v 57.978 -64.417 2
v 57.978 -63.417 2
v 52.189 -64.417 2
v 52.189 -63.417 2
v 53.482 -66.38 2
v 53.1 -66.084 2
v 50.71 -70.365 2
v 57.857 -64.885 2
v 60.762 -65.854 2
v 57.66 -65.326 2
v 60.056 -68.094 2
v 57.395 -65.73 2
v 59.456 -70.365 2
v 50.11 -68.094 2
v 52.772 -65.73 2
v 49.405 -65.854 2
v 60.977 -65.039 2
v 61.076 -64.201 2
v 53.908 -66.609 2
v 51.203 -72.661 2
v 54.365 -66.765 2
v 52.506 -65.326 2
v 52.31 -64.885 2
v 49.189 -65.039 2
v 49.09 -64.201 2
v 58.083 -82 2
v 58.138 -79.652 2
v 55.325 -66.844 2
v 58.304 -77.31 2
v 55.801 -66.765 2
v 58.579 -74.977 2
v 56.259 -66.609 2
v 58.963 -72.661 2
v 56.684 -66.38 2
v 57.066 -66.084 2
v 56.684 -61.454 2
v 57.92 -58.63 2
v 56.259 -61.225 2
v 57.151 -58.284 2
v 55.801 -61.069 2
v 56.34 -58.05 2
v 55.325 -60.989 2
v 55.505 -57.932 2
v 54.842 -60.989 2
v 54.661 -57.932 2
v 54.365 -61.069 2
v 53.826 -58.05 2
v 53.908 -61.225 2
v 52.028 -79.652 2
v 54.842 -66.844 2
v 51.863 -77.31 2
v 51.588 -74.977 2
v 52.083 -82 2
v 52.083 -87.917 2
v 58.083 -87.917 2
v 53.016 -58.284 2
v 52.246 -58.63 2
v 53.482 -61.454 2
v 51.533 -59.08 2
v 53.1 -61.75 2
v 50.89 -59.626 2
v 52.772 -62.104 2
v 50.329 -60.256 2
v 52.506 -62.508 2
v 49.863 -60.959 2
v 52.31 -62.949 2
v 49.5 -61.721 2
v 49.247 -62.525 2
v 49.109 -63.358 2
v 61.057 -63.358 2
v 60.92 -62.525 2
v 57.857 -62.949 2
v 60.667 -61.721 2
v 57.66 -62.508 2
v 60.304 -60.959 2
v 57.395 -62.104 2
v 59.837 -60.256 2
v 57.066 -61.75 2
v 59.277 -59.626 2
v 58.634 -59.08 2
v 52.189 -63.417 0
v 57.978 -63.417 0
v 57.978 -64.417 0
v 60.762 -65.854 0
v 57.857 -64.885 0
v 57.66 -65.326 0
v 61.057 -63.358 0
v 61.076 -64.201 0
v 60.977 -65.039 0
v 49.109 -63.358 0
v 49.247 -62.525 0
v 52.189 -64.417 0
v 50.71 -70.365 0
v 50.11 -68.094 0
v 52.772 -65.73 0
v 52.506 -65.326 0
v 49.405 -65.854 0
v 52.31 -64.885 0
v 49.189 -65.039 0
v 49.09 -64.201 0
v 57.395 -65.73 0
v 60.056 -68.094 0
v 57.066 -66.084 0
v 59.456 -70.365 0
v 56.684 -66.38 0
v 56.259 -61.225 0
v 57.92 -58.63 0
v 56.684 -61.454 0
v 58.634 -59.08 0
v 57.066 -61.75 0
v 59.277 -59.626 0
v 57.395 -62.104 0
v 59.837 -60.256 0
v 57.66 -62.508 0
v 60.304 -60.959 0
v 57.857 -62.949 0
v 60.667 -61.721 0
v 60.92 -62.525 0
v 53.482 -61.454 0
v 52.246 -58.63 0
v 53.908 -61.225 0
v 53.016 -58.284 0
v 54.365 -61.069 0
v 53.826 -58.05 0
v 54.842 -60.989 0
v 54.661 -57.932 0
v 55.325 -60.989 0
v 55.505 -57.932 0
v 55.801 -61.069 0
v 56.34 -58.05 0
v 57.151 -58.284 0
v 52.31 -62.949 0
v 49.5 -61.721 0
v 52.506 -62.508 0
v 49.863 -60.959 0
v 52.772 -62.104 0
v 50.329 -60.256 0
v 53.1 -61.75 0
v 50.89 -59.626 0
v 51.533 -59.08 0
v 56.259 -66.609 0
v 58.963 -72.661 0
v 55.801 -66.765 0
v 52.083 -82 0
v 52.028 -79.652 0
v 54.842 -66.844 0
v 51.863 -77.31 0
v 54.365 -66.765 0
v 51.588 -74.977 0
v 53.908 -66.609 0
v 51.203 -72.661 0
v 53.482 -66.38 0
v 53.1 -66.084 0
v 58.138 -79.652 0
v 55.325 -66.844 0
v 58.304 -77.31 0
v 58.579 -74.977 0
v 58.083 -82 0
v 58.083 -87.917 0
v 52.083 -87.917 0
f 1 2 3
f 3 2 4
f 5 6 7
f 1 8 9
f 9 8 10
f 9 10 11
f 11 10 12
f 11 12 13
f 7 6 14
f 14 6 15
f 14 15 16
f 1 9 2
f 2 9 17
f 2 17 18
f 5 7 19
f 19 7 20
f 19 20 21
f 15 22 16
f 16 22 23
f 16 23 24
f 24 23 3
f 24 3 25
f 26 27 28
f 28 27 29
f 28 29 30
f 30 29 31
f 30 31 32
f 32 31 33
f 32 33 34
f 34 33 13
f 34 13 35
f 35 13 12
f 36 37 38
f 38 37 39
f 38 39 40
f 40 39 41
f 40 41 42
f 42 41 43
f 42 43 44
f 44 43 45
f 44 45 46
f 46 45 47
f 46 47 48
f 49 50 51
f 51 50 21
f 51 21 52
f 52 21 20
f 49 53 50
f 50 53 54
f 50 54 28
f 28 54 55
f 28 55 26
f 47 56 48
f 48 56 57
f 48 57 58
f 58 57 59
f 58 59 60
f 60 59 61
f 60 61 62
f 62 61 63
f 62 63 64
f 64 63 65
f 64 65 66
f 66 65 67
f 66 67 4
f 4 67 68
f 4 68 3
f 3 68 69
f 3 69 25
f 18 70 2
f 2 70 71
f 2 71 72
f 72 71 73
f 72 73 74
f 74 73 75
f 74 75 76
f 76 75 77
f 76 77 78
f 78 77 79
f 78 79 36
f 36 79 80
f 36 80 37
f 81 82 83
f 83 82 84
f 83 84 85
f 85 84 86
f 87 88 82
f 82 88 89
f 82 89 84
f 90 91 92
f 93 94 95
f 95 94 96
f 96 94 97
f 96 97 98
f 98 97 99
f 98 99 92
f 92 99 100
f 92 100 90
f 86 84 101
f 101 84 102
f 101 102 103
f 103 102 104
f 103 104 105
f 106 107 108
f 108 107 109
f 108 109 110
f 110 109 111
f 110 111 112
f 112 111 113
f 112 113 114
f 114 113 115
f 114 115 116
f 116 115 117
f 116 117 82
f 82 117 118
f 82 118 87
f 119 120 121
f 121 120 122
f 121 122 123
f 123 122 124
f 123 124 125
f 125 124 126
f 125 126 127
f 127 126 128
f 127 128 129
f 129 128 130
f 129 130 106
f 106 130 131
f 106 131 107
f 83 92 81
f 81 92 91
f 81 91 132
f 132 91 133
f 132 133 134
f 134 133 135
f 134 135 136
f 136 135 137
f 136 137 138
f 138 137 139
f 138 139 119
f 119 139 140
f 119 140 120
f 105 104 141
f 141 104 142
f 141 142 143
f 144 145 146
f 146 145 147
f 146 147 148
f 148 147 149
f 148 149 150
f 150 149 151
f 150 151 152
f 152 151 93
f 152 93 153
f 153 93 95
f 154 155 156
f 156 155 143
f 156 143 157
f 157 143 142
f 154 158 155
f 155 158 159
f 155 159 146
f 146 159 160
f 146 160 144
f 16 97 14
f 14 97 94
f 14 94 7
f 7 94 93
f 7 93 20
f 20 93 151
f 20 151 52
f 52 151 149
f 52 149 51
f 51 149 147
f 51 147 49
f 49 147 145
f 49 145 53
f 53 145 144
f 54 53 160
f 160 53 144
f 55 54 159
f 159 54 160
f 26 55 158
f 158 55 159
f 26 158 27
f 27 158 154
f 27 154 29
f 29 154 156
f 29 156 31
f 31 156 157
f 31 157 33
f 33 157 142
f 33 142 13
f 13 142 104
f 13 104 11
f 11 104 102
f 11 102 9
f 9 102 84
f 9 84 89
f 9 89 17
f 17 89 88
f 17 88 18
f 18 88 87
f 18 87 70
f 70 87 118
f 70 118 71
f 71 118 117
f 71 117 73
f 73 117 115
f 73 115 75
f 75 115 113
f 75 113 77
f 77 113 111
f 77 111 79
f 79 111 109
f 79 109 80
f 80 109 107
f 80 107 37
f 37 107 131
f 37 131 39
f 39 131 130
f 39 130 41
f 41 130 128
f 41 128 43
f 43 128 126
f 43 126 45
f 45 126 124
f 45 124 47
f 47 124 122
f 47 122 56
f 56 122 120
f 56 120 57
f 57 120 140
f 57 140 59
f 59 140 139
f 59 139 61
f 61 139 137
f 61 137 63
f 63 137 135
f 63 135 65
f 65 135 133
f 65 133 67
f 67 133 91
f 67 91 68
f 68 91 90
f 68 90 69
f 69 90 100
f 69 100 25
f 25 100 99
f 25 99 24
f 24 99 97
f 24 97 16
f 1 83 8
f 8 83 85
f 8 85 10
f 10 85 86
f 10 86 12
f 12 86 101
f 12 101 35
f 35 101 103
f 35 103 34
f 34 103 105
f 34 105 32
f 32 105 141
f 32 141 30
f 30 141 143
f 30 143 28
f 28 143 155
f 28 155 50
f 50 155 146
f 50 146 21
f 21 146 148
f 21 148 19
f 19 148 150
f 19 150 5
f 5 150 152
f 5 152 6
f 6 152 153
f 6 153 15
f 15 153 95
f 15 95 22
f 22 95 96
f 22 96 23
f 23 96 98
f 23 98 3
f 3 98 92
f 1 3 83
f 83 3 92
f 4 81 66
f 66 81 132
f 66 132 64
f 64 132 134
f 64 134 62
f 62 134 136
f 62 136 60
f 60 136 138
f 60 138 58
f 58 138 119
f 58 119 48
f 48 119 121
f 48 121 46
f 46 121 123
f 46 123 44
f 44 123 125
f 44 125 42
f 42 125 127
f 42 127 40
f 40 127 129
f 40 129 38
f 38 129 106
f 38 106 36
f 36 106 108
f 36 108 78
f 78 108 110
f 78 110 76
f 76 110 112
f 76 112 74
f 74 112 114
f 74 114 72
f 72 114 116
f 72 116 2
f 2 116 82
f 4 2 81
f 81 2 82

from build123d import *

# Parameters (mm, degrees)
BOSS_EXTRUDE1_DEPTH = 2


with BuildPart() as part:
    # Model → Boss-Extrude1 (new body)
    with BuildSketch(Plane.XY):
        with BuildLine():
            Line((58.08314132, -82), (58.08314132, -87.91685868))
            Line((58.08314132, -87.91685868), (52.08314132, -87.91685868))
            Line((52.08314132, -87.91685868), (52.08314132, -82))
            ThreePointArc((52.08314132, -82), (51.408953166, -73.816829116), (49.404569891, -65.854338107))
            ThreePointArc((49.404569891, -65.854338107), (55.08314132, -57.91685868), (60.761712749, -65.854338107))
            ThreePointArc((60.761712749, -65.854338107), (58.757329474, -73.816829116), (58.08314132, -82))
        make_face()
        with BuildLine():
            Line((52.188507276, -64.41685868), (57.977775364, -64.41685868))
            ThreePointArc((57.977775364, -64.41685868), (55.08314132, -66.85435868), (52.188507276, -64.41685868))
        make_face(mode=Mode.SUBTRACT)
        with BuildLine():
            Line((57.977775364, -63.41685868), (52.188507276, -63.41685868))
            ThreePointArc((52.188507276, -63.41685868), (55.08314132, -60.97935868), (57.977775364, -63.41685868))
        make_face(mode=Mode.SUBTRACT)
    extrude(amount=BOSS_EXTRUDE1_DEPTH)


solid = part.part
